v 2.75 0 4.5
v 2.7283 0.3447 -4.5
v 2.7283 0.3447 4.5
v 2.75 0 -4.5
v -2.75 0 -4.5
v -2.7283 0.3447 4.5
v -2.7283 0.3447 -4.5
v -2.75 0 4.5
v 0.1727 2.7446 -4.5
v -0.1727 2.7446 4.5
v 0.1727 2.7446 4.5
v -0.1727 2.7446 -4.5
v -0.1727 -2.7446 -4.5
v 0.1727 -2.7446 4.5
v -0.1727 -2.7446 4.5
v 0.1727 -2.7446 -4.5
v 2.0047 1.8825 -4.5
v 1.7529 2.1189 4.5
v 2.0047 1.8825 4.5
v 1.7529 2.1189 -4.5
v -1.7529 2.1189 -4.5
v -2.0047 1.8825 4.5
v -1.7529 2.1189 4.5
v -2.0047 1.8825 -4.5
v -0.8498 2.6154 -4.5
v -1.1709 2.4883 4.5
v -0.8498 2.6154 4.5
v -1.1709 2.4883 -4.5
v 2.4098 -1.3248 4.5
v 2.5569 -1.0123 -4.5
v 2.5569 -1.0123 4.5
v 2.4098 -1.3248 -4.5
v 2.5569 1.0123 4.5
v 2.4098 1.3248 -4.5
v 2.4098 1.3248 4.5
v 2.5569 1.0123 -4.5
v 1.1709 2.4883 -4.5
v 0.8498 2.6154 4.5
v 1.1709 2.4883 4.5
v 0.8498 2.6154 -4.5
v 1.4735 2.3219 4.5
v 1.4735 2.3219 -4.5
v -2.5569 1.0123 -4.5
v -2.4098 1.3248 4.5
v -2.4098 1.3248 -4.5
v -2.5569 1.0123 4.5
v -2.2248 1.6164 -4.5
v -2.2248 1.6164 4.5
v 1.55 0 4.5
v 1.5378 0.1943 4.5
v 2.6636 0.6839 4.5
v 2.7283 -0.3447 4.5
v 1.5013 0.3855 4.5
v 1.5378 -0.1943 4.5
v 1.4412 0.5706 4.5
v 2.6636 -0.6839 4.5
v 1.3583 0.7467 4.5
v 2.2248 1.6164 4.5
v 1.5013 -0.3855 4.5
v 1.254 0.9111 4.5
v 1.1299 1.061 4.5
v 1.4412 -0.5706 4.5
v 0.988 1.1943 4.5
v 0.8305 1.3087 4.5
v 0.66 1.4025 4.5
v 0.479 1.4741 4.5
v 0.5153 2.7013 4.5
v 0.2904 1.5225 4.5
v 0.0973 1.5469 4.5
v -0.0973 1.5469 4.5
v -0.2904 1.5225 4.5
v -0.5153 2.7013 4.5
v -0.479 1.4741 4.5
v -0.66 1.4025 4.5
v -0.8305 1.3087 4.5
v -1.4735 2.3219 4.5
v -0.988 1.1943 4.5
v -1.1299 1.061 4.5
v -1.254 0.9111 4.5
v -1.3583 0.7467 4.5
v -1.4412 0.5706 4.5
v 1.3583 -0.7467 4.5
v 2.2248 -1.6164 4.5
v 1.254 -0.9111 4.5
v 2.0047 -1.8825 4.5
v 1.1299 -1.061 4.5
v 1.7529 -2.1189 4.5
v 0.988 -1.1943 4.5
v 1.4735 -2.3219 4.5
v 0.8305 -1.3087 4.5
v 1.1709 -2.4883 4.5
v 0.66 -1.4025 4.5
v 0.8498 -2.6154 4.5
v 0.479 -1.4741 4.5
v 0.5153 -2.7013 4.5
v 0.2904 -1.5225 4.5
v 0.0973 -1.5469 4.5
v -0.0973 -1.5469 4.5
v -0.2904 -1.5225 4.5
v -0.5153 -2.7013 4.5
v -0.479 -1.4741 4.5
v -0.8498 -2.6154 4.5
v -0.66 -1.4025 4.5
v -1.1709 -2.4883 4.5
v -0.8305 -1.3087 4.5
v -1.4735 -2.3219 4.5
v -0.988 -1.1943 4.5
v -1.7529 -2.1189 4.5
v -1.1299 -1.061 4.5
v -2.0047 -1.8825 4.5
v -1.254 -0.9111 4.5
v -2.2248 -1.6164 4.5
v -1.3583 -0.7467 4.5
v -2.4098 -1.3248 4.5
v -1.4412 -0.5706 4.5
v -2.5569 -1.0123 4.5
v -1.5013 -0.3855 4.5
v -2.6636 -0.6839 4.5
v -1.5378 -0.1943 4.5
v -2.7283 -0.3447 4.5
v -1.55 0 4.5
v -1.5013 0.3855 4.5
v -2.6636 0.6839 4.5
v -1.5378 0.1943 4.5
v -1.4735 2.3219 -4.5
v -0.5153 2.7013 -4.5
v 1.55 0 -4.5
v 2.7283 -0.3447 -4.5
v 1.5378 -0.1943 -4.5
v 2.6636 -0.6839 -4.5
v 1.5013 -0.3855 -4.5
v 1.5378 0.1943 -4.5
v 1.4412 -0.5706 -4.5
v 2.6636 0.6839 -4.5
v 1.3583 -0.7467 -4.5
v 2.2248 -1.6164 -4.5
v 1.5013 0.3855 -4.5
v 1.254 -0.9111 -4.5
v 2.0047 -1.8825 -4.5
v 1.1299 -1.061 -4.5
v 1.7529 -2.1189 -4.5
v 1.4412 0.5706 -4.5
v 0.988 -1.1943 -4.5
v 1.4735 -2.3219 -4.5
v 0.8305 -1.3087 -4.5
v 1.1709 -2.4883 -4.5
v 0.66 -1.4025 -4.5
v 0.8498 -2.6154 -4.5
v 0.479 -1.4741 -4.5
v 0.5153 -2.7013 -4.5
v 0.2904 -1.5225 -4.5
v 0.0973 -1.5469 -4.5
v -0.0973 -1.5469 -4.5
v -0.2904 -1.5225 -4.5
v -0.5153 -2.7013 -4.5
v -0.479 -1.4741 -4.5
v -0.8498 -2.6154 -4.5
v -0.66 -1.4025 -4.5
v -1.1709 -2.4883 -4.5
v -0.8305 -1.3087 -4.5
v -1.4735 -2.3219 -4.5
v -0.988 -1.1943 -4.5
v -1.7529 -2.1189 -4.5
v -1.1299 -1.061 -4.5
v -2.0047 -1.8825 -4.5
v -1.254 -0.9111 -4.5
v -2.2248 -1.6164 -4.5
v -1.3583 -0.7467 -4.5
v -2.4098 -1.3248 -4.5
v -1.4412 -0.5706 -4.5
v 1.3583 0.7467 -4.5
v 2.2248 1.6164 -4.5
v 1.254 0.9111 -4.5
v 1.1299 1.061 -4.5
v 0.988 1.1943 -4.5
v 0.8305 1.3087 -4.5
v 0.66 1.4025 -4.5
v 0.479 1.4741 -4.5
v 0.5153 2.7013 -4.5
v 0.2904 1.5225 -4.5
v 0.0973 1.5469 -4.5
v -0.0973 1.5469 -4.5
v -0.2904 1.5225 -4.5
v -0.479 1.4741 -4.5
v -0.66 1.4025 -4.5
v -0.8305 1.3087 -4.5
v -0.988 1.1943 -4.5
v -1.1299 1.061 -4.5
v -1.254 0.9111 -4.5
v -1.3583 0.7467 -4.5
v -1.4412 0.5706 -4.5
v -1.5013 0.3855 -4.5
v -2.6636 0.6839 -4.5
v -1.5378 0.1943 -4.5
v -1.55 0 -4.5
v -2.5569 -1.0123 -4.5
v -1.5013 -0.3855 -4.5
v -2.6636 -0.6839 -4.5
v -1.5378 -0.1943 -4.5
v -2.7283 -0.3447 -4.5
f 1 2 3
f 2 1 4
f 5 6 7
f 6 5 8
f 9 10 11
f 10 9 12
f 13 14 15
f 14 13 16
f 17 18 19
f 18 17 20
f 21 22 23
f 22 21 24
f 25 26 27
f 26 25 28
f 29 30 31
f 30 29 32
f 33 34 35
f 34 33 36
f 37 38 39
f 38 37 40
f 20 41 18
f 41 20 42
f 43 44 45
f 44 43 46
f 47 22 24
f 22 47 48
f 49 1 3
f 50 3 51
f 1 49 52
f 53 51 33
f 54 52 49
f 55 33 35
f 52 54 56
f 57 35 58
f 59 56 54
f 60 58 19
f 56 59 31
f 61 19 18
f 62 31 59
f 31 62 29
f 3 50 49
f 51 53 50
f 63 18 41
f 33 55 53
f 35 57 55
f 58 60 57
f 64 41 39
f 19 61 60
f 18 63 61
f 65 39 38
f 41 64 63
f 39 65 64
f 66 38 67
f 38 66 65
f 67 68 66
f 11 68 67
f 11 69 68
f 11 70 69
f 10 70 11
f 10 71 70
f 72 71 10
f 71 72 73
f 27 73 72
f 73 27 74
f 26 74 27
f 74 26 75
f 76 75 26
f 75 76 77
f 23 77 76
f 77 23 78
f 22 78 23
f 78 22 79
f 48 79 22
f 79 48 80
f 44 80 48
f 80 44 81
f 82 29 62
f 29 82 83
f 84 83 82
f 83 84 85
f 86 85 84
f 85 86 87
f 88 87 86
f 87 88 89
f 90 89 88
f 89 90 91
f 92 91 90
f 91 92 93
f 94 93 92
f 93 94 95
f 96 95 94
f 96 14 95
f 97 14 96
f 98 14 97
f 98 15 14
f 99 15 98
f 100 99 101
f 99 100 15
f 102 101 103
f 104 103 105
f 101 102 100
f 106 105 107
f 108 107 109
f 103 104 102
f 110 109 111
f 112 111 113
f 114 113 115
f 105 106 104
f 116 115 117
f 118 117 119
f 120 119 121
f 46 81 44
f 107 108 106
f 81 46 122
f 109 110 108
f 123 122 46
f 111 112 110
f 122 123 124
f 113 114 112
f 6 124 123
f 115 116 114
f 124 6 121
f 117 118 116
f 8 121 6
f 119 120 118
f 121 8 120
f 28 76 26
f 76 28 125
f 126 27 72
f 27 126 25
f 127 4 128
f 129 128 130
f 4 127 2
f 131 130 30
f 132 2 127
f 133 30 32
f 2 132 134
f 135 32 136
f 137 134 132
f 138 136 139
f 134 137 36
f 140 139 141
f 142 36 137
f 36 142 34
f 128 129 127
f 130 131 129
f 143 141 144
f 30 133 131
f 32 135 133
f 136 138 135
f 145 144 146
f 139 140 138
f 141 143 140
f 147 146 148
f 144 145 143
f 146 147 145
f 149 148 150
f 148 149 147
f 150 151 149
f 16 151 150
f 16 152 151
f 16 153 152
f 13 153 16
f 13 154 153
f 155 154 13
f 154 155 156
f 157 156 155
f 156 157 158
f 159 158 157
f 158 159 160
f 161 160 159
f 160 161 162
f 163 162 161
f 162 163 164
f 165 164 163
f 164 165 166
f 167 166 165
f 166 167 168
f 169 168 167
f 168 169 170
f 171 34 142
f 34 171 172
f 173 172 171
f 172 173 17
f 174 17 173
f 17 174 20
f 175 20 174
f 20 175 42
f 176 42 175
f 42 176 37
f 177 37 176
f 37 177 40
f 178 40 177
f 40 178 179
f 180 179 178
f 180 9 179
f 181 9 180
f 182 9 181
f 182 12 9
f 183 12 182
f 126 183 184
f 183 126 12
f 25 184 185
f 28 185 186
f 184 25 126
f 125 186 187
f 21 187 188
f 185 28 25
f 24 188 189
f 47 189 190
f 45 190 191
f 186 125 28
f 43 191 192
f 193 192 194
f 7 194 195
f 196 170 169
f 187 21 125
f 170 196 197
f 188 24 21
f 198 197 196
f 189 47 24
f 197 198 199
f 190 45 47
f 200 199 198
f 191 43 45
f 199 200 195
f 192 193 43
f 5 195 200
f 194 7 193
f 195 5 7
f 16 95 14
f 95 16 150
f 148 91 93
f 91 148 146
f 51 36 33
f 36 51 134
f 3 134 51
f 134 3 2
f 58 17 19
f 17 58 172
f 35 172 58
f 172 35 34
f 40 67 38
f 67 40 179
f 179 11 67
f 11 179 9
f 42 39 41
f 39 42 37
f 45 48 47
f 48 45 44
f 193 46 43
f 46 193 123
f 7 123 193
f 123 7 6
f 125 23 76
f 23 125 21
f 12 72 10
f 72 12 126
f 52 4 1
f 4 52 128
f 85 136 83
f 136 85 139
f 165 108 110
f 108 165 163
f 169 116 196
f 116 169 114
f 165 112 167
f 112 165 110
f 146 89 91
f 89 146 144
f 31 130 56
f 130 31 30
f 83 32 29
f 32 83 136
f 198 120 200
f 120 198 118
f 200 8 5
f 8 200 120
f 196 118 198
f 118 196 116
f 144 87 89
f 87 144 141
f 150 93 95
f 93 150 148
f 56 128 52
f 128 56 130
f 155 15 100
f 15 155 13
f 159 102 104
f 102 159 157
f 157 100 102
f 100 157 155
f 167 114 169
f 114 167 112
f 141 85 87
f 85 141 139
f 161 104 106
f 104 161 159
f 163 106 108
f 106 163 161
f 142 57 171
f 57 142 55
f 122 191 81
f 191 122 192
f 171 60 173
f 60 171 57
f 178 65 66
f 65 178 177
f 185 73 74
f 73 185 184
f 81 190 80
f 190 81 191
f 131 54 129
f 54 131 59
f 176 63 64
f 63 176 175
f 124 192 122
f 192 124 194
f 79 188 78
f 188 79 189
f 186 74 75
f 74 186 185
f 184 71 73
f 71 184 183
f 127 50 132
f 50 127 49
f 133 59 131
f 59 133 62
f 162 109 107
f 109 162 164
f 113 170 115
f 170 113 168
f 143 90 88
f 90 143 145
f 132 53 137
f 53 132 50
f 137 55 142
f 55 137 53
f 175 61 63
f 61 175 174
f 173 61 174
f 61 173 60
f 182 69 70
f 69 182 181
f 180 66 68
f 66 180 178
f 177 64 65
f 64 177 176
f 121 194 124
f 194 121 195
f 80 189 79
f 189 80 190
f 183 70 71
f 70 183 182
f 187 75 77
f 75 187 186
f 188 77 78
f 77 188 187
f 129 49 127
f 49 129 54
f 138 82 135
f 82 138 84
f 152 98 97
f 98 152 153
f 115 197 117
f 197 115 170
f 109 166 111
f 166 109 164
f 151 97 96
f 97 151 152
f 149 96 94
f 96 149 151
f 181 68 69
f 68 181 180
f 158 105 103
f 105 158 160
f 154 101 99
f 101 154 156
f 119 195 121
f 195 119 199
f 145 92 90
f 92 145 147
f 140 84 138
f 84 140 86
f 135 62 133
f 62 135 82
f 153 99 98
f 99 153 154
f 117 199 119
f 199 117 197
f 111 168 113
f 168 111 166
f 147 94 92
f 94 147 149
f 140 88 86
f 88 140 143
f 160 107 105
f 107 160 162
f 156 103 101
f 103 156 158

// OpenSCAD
$fn = 50;


difference() {
	union() {
		translate(v = [0, 0, -4.5000000000]) {
			cylinder(h = 9, r = 2.7500000000);
		}
	}
	union() {
		translate(v = [0, 0, -100.0000000000]) {
			cylinder(h = 200, r = 1.5500000000);
		}
	}
}
